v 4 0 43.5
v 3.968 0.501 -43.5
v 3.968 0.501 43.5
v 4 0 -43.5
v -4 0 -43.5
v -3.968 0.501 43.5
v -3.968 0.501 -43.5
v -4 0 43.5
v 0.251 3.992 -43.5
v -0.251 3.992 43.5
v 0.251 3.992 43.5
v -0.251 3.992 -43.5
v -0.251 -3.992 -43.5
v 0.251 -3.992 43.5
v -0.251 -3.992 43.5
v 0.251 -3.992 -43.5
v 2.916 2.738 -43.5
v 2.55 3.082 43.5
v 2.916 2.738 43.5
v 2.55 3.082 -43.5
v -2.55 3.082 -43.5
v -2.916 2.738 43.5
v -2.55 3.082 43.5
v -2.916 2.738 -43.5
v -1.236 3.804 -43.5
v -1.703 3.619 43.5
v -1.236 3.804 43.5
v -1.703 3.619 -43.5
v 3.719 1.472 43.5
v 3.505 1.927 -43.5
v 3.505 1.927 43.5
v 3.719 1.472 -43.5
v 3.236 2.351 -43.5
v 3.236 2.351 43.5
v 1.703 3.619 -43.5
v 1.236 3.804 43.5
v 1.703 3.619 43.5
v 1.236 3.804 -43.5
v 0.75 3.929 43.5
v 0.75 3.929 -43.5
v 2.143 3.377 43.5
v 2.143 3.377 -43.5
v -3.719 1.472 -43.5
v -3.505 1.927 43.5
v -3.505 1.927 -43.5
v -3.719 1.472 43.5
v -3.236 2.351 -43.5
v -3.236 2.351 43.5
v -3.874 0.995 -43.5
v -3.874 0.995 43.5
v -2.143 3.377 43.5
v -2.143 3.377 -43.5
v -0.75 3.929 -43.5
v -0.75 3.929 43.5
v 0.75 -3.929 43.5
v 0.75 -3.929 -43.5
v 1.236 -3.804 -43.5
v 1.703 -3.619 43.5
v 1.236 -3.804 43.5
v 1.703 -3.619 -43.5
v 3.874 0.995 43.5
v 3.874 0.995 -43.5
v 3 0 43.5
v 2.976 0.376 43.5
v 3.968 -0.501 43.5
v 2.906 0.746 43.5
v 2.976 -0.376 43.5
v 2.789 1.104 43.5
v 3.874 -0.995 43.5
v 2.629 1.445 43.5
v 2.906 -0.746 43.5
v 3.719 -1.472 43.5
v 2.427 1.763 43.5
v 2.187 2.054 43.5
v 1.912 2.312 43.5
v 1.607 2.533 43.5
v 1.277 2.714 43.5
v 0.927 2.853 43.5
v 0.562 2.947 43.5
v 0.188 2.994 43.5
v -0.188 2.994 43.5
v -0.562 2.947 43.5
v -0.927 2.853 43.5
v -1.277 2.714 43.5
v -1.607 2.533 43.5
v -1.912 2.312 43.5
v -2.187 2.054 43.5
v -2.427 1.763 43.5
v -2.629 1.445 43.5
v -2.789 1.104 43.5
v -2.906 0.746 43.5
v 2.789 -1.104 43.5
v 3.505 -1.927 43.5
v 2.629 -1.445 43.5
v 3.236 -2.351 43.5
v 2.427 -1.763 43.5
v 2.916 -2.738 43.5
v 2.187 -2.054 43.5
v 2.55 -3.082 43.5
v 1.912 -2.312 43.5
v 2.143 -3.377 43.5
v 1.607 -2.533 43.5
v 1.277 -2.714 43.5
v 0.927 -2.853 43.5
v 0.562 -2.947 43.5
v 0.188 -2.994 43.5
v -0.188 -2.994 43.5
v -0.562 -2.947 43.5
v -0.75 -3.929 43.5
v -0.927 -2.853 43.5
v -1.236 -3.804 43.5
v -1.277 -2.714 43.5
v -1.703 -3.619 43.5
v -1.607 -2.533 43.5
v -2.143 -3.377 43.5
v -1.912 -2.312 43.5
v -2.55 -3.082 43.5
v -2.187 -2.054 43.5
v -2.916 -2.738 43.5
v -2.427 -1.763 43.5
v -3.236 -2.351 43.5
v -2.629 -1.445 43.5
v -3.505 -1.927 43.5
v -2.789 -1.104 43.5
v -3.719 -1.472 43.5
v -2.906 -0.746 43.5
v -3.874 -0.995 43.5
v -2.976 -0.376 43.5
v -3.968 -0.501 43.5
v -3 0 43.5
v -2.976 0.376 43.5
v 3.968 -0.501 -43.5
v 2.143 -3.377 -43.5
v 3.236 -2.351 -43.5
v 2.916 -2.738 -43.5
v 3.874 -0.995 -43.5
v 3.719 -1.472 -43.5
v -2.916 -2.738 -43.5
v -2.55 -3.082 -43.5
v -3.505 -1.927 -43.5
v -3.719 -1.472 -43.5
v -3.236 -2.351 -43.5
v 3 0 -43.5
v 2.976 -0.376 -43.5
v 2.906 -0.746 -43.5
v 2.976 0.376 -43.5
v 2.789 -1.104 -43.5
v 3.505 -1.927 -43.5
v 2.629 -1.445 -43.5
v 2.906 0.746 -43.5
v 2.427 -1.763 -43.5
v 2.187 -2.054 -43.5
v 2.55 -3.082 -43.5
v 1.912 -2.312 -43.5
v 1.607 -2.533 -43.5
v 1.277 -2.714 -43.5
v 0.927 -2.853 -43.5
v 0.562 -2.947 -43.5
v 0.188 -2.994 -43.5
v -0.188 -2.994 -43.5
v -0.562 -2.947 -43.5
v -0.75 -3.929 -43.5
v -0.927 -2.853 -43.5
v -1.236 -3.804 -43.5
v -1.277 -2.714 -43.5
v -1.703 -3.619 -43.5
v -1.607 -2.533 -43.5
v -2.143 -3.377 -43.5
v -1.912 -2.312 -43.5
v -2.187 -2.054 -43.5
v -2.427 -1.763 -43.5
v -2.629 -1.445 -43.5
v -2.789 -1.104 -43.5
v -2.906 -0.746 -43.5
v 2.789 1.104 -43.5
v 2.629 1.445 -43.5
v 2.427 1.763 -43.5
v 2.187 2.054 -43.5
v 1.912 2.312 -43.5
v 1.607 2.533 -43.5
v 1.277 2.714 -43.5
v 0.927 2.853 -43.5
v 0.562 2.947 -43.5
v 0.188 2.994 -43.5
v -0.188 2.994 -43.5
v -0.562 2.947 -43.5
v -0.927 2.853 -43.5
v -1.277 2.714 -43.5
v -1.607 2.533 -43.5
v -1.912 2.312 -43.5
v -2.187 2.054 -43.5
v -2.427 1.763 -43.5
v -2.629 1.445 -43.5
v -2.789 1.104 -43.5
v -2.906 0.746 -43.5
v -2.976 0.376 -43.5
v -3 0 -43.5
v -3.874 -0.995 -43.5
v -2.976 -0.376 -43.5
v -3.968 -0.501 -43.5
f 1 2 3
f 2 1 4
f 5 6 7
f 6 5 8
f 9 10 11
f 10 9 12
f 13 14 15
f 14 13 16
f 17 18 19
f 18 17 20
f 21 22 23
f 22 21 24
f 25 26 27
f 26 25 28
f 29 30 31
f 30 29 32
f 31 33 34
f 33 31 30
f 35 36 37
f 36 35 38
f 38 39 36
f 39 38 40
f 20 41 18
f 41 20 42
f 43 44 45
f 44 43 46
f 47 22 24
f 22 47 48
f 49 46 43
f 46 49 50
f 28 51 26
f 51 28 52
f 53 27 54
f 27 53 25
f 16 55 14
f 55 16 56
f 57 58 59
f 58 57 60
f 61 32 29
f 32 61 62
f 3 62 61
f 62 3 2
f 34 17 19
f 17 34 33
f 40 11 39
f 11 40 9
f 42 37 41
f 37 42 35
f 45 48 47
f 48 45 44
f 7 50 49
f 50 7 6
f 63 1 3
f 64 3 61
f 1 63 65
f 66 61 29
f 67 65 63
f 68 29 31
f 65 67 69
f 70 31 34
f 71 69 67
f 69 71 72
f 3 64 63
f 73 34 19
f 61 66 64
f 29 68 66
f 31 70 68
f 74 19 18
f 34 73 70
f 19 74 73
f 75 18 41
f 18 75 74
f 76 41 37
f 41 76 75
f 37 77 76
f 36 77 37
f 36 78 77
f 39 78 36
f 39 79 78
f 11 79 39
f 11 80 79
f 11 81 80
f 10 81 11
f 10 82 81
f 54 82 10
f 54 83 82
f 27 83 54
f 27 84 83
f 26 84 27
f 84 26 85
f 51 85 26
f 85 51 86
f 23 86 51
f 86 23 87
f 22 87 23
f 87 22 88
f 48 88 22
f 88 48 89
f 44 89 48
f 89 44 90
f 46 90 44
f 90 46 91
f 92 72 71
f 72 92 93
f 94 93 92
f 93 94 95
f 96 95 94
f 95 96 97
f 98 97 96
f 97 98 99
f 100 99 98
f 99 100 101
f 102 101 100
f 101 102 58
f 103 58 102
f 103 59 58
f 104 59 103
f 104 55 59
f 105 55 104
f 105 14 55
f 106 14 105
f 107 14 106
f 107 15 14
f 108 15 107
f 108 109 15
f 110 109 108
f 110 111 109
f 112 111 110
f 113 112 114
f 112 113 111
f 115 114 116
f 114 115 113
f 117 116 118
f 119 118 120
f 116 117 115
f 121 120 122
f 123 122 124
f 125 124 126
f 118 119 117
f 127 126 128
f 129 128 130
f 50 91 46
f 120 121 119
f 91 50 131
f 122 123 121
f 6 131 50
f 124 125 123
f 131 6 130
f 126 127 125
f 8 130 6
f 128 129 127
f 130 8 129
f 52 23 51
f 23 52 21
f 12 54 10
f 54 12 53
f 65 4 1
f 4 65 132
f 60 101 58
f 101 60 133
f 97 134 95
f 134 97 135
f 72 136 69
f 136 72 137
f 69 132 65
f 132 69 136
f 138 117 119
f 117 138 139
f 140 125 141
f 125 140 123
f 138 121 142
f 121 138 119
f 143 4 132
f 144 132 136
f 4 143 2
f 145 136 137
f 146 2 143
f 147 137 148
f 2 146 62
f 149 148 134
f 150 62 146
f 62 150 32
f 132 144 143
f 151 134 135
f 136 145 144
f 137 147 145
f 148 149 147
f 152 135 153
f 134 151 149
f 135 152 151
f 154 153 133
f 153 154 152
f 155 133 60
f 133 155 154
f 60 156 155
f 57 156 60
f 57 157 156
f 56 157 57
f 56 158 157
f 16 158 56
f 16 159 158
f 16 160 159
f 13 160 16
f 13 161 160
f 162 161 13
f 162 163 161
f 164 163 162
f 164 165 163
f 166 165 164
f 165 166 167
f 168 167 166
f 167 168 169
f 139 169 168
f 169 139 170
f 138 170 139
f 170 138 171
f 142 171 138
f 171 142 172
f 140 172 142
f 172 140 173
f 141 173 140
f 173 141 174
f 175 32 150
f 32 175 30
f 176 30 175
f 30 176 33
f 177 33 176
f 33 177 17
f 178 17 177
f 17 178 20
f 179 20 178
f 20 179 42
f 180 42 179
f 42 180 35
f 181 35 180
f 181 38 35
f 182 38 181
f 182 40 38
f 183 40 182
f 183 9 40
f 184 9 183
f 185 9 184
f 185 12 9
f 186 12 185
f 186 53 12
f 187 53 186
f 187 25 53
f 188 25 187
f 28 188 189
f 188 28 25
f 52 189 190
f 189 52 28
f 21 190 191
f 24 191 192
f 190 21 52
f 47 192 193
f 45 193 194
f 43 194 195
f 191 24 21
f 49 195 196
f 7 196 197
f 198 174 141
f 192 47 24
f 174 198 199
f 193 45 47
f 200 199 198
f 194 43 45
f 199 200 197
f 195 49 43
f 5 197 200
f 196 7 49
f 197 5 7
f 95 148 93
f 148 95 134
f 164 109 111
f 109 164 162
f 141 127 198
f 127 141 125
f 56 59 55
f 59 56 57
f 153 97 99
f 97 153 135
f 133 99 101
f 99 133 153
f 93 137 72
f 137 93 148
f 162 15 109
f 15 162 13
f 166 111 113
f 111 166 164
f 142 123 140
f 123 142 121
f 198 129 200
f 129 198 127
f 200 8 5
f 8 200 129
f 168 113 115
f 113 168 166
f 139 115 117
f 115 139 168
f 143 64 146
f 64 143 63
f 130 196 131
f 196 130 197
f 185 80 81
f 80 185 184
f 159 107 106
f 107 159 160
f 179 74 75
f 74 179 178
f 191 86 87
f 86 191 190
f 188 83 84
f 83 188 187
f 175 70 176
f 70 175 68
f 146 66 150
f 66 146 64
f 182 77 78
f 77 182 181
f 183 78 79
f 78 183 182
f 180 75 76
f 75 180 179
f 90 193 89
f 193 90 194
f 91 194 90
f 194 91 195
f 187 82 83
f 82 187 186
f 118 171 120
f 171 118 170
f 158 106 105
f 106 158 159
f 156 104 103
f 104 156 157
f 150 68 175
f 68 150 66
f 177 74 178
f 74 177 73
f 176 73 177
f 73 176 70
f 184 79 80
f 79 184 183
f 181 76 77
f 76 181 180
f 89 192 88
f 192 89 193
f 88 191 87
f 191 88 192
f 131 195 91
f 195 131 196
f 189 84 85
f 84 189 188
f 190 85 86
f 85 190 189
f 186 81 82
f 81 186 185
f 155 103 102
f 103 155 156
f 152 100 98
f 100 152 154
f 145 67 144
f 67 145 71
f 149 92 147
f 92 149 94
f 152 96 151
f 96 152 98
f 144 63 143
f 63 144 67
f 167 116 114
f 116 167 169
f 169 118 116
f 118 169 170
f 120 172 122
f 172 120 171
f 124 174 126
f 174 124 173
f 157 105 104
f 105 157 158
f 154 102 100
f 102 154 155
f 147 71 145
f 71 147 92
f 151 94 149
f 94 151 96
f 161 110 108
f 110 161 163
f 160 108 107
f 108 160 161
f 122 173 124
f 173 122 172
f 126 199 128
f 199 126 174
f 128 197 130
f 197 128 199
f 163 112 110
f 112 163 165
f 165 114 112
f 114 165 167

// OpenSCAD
$fn = 50;


difference() {
	union() {
		translate(v = [0, 0, -43.5000000000]) {
			cylinder(h = 87, r = 4.0000000000);
		}
	}
	union() {
		translate(v = [0, 0, -100.0000000000]) {
			cylinder(h = 200, r = 3);
		}
	}
}
